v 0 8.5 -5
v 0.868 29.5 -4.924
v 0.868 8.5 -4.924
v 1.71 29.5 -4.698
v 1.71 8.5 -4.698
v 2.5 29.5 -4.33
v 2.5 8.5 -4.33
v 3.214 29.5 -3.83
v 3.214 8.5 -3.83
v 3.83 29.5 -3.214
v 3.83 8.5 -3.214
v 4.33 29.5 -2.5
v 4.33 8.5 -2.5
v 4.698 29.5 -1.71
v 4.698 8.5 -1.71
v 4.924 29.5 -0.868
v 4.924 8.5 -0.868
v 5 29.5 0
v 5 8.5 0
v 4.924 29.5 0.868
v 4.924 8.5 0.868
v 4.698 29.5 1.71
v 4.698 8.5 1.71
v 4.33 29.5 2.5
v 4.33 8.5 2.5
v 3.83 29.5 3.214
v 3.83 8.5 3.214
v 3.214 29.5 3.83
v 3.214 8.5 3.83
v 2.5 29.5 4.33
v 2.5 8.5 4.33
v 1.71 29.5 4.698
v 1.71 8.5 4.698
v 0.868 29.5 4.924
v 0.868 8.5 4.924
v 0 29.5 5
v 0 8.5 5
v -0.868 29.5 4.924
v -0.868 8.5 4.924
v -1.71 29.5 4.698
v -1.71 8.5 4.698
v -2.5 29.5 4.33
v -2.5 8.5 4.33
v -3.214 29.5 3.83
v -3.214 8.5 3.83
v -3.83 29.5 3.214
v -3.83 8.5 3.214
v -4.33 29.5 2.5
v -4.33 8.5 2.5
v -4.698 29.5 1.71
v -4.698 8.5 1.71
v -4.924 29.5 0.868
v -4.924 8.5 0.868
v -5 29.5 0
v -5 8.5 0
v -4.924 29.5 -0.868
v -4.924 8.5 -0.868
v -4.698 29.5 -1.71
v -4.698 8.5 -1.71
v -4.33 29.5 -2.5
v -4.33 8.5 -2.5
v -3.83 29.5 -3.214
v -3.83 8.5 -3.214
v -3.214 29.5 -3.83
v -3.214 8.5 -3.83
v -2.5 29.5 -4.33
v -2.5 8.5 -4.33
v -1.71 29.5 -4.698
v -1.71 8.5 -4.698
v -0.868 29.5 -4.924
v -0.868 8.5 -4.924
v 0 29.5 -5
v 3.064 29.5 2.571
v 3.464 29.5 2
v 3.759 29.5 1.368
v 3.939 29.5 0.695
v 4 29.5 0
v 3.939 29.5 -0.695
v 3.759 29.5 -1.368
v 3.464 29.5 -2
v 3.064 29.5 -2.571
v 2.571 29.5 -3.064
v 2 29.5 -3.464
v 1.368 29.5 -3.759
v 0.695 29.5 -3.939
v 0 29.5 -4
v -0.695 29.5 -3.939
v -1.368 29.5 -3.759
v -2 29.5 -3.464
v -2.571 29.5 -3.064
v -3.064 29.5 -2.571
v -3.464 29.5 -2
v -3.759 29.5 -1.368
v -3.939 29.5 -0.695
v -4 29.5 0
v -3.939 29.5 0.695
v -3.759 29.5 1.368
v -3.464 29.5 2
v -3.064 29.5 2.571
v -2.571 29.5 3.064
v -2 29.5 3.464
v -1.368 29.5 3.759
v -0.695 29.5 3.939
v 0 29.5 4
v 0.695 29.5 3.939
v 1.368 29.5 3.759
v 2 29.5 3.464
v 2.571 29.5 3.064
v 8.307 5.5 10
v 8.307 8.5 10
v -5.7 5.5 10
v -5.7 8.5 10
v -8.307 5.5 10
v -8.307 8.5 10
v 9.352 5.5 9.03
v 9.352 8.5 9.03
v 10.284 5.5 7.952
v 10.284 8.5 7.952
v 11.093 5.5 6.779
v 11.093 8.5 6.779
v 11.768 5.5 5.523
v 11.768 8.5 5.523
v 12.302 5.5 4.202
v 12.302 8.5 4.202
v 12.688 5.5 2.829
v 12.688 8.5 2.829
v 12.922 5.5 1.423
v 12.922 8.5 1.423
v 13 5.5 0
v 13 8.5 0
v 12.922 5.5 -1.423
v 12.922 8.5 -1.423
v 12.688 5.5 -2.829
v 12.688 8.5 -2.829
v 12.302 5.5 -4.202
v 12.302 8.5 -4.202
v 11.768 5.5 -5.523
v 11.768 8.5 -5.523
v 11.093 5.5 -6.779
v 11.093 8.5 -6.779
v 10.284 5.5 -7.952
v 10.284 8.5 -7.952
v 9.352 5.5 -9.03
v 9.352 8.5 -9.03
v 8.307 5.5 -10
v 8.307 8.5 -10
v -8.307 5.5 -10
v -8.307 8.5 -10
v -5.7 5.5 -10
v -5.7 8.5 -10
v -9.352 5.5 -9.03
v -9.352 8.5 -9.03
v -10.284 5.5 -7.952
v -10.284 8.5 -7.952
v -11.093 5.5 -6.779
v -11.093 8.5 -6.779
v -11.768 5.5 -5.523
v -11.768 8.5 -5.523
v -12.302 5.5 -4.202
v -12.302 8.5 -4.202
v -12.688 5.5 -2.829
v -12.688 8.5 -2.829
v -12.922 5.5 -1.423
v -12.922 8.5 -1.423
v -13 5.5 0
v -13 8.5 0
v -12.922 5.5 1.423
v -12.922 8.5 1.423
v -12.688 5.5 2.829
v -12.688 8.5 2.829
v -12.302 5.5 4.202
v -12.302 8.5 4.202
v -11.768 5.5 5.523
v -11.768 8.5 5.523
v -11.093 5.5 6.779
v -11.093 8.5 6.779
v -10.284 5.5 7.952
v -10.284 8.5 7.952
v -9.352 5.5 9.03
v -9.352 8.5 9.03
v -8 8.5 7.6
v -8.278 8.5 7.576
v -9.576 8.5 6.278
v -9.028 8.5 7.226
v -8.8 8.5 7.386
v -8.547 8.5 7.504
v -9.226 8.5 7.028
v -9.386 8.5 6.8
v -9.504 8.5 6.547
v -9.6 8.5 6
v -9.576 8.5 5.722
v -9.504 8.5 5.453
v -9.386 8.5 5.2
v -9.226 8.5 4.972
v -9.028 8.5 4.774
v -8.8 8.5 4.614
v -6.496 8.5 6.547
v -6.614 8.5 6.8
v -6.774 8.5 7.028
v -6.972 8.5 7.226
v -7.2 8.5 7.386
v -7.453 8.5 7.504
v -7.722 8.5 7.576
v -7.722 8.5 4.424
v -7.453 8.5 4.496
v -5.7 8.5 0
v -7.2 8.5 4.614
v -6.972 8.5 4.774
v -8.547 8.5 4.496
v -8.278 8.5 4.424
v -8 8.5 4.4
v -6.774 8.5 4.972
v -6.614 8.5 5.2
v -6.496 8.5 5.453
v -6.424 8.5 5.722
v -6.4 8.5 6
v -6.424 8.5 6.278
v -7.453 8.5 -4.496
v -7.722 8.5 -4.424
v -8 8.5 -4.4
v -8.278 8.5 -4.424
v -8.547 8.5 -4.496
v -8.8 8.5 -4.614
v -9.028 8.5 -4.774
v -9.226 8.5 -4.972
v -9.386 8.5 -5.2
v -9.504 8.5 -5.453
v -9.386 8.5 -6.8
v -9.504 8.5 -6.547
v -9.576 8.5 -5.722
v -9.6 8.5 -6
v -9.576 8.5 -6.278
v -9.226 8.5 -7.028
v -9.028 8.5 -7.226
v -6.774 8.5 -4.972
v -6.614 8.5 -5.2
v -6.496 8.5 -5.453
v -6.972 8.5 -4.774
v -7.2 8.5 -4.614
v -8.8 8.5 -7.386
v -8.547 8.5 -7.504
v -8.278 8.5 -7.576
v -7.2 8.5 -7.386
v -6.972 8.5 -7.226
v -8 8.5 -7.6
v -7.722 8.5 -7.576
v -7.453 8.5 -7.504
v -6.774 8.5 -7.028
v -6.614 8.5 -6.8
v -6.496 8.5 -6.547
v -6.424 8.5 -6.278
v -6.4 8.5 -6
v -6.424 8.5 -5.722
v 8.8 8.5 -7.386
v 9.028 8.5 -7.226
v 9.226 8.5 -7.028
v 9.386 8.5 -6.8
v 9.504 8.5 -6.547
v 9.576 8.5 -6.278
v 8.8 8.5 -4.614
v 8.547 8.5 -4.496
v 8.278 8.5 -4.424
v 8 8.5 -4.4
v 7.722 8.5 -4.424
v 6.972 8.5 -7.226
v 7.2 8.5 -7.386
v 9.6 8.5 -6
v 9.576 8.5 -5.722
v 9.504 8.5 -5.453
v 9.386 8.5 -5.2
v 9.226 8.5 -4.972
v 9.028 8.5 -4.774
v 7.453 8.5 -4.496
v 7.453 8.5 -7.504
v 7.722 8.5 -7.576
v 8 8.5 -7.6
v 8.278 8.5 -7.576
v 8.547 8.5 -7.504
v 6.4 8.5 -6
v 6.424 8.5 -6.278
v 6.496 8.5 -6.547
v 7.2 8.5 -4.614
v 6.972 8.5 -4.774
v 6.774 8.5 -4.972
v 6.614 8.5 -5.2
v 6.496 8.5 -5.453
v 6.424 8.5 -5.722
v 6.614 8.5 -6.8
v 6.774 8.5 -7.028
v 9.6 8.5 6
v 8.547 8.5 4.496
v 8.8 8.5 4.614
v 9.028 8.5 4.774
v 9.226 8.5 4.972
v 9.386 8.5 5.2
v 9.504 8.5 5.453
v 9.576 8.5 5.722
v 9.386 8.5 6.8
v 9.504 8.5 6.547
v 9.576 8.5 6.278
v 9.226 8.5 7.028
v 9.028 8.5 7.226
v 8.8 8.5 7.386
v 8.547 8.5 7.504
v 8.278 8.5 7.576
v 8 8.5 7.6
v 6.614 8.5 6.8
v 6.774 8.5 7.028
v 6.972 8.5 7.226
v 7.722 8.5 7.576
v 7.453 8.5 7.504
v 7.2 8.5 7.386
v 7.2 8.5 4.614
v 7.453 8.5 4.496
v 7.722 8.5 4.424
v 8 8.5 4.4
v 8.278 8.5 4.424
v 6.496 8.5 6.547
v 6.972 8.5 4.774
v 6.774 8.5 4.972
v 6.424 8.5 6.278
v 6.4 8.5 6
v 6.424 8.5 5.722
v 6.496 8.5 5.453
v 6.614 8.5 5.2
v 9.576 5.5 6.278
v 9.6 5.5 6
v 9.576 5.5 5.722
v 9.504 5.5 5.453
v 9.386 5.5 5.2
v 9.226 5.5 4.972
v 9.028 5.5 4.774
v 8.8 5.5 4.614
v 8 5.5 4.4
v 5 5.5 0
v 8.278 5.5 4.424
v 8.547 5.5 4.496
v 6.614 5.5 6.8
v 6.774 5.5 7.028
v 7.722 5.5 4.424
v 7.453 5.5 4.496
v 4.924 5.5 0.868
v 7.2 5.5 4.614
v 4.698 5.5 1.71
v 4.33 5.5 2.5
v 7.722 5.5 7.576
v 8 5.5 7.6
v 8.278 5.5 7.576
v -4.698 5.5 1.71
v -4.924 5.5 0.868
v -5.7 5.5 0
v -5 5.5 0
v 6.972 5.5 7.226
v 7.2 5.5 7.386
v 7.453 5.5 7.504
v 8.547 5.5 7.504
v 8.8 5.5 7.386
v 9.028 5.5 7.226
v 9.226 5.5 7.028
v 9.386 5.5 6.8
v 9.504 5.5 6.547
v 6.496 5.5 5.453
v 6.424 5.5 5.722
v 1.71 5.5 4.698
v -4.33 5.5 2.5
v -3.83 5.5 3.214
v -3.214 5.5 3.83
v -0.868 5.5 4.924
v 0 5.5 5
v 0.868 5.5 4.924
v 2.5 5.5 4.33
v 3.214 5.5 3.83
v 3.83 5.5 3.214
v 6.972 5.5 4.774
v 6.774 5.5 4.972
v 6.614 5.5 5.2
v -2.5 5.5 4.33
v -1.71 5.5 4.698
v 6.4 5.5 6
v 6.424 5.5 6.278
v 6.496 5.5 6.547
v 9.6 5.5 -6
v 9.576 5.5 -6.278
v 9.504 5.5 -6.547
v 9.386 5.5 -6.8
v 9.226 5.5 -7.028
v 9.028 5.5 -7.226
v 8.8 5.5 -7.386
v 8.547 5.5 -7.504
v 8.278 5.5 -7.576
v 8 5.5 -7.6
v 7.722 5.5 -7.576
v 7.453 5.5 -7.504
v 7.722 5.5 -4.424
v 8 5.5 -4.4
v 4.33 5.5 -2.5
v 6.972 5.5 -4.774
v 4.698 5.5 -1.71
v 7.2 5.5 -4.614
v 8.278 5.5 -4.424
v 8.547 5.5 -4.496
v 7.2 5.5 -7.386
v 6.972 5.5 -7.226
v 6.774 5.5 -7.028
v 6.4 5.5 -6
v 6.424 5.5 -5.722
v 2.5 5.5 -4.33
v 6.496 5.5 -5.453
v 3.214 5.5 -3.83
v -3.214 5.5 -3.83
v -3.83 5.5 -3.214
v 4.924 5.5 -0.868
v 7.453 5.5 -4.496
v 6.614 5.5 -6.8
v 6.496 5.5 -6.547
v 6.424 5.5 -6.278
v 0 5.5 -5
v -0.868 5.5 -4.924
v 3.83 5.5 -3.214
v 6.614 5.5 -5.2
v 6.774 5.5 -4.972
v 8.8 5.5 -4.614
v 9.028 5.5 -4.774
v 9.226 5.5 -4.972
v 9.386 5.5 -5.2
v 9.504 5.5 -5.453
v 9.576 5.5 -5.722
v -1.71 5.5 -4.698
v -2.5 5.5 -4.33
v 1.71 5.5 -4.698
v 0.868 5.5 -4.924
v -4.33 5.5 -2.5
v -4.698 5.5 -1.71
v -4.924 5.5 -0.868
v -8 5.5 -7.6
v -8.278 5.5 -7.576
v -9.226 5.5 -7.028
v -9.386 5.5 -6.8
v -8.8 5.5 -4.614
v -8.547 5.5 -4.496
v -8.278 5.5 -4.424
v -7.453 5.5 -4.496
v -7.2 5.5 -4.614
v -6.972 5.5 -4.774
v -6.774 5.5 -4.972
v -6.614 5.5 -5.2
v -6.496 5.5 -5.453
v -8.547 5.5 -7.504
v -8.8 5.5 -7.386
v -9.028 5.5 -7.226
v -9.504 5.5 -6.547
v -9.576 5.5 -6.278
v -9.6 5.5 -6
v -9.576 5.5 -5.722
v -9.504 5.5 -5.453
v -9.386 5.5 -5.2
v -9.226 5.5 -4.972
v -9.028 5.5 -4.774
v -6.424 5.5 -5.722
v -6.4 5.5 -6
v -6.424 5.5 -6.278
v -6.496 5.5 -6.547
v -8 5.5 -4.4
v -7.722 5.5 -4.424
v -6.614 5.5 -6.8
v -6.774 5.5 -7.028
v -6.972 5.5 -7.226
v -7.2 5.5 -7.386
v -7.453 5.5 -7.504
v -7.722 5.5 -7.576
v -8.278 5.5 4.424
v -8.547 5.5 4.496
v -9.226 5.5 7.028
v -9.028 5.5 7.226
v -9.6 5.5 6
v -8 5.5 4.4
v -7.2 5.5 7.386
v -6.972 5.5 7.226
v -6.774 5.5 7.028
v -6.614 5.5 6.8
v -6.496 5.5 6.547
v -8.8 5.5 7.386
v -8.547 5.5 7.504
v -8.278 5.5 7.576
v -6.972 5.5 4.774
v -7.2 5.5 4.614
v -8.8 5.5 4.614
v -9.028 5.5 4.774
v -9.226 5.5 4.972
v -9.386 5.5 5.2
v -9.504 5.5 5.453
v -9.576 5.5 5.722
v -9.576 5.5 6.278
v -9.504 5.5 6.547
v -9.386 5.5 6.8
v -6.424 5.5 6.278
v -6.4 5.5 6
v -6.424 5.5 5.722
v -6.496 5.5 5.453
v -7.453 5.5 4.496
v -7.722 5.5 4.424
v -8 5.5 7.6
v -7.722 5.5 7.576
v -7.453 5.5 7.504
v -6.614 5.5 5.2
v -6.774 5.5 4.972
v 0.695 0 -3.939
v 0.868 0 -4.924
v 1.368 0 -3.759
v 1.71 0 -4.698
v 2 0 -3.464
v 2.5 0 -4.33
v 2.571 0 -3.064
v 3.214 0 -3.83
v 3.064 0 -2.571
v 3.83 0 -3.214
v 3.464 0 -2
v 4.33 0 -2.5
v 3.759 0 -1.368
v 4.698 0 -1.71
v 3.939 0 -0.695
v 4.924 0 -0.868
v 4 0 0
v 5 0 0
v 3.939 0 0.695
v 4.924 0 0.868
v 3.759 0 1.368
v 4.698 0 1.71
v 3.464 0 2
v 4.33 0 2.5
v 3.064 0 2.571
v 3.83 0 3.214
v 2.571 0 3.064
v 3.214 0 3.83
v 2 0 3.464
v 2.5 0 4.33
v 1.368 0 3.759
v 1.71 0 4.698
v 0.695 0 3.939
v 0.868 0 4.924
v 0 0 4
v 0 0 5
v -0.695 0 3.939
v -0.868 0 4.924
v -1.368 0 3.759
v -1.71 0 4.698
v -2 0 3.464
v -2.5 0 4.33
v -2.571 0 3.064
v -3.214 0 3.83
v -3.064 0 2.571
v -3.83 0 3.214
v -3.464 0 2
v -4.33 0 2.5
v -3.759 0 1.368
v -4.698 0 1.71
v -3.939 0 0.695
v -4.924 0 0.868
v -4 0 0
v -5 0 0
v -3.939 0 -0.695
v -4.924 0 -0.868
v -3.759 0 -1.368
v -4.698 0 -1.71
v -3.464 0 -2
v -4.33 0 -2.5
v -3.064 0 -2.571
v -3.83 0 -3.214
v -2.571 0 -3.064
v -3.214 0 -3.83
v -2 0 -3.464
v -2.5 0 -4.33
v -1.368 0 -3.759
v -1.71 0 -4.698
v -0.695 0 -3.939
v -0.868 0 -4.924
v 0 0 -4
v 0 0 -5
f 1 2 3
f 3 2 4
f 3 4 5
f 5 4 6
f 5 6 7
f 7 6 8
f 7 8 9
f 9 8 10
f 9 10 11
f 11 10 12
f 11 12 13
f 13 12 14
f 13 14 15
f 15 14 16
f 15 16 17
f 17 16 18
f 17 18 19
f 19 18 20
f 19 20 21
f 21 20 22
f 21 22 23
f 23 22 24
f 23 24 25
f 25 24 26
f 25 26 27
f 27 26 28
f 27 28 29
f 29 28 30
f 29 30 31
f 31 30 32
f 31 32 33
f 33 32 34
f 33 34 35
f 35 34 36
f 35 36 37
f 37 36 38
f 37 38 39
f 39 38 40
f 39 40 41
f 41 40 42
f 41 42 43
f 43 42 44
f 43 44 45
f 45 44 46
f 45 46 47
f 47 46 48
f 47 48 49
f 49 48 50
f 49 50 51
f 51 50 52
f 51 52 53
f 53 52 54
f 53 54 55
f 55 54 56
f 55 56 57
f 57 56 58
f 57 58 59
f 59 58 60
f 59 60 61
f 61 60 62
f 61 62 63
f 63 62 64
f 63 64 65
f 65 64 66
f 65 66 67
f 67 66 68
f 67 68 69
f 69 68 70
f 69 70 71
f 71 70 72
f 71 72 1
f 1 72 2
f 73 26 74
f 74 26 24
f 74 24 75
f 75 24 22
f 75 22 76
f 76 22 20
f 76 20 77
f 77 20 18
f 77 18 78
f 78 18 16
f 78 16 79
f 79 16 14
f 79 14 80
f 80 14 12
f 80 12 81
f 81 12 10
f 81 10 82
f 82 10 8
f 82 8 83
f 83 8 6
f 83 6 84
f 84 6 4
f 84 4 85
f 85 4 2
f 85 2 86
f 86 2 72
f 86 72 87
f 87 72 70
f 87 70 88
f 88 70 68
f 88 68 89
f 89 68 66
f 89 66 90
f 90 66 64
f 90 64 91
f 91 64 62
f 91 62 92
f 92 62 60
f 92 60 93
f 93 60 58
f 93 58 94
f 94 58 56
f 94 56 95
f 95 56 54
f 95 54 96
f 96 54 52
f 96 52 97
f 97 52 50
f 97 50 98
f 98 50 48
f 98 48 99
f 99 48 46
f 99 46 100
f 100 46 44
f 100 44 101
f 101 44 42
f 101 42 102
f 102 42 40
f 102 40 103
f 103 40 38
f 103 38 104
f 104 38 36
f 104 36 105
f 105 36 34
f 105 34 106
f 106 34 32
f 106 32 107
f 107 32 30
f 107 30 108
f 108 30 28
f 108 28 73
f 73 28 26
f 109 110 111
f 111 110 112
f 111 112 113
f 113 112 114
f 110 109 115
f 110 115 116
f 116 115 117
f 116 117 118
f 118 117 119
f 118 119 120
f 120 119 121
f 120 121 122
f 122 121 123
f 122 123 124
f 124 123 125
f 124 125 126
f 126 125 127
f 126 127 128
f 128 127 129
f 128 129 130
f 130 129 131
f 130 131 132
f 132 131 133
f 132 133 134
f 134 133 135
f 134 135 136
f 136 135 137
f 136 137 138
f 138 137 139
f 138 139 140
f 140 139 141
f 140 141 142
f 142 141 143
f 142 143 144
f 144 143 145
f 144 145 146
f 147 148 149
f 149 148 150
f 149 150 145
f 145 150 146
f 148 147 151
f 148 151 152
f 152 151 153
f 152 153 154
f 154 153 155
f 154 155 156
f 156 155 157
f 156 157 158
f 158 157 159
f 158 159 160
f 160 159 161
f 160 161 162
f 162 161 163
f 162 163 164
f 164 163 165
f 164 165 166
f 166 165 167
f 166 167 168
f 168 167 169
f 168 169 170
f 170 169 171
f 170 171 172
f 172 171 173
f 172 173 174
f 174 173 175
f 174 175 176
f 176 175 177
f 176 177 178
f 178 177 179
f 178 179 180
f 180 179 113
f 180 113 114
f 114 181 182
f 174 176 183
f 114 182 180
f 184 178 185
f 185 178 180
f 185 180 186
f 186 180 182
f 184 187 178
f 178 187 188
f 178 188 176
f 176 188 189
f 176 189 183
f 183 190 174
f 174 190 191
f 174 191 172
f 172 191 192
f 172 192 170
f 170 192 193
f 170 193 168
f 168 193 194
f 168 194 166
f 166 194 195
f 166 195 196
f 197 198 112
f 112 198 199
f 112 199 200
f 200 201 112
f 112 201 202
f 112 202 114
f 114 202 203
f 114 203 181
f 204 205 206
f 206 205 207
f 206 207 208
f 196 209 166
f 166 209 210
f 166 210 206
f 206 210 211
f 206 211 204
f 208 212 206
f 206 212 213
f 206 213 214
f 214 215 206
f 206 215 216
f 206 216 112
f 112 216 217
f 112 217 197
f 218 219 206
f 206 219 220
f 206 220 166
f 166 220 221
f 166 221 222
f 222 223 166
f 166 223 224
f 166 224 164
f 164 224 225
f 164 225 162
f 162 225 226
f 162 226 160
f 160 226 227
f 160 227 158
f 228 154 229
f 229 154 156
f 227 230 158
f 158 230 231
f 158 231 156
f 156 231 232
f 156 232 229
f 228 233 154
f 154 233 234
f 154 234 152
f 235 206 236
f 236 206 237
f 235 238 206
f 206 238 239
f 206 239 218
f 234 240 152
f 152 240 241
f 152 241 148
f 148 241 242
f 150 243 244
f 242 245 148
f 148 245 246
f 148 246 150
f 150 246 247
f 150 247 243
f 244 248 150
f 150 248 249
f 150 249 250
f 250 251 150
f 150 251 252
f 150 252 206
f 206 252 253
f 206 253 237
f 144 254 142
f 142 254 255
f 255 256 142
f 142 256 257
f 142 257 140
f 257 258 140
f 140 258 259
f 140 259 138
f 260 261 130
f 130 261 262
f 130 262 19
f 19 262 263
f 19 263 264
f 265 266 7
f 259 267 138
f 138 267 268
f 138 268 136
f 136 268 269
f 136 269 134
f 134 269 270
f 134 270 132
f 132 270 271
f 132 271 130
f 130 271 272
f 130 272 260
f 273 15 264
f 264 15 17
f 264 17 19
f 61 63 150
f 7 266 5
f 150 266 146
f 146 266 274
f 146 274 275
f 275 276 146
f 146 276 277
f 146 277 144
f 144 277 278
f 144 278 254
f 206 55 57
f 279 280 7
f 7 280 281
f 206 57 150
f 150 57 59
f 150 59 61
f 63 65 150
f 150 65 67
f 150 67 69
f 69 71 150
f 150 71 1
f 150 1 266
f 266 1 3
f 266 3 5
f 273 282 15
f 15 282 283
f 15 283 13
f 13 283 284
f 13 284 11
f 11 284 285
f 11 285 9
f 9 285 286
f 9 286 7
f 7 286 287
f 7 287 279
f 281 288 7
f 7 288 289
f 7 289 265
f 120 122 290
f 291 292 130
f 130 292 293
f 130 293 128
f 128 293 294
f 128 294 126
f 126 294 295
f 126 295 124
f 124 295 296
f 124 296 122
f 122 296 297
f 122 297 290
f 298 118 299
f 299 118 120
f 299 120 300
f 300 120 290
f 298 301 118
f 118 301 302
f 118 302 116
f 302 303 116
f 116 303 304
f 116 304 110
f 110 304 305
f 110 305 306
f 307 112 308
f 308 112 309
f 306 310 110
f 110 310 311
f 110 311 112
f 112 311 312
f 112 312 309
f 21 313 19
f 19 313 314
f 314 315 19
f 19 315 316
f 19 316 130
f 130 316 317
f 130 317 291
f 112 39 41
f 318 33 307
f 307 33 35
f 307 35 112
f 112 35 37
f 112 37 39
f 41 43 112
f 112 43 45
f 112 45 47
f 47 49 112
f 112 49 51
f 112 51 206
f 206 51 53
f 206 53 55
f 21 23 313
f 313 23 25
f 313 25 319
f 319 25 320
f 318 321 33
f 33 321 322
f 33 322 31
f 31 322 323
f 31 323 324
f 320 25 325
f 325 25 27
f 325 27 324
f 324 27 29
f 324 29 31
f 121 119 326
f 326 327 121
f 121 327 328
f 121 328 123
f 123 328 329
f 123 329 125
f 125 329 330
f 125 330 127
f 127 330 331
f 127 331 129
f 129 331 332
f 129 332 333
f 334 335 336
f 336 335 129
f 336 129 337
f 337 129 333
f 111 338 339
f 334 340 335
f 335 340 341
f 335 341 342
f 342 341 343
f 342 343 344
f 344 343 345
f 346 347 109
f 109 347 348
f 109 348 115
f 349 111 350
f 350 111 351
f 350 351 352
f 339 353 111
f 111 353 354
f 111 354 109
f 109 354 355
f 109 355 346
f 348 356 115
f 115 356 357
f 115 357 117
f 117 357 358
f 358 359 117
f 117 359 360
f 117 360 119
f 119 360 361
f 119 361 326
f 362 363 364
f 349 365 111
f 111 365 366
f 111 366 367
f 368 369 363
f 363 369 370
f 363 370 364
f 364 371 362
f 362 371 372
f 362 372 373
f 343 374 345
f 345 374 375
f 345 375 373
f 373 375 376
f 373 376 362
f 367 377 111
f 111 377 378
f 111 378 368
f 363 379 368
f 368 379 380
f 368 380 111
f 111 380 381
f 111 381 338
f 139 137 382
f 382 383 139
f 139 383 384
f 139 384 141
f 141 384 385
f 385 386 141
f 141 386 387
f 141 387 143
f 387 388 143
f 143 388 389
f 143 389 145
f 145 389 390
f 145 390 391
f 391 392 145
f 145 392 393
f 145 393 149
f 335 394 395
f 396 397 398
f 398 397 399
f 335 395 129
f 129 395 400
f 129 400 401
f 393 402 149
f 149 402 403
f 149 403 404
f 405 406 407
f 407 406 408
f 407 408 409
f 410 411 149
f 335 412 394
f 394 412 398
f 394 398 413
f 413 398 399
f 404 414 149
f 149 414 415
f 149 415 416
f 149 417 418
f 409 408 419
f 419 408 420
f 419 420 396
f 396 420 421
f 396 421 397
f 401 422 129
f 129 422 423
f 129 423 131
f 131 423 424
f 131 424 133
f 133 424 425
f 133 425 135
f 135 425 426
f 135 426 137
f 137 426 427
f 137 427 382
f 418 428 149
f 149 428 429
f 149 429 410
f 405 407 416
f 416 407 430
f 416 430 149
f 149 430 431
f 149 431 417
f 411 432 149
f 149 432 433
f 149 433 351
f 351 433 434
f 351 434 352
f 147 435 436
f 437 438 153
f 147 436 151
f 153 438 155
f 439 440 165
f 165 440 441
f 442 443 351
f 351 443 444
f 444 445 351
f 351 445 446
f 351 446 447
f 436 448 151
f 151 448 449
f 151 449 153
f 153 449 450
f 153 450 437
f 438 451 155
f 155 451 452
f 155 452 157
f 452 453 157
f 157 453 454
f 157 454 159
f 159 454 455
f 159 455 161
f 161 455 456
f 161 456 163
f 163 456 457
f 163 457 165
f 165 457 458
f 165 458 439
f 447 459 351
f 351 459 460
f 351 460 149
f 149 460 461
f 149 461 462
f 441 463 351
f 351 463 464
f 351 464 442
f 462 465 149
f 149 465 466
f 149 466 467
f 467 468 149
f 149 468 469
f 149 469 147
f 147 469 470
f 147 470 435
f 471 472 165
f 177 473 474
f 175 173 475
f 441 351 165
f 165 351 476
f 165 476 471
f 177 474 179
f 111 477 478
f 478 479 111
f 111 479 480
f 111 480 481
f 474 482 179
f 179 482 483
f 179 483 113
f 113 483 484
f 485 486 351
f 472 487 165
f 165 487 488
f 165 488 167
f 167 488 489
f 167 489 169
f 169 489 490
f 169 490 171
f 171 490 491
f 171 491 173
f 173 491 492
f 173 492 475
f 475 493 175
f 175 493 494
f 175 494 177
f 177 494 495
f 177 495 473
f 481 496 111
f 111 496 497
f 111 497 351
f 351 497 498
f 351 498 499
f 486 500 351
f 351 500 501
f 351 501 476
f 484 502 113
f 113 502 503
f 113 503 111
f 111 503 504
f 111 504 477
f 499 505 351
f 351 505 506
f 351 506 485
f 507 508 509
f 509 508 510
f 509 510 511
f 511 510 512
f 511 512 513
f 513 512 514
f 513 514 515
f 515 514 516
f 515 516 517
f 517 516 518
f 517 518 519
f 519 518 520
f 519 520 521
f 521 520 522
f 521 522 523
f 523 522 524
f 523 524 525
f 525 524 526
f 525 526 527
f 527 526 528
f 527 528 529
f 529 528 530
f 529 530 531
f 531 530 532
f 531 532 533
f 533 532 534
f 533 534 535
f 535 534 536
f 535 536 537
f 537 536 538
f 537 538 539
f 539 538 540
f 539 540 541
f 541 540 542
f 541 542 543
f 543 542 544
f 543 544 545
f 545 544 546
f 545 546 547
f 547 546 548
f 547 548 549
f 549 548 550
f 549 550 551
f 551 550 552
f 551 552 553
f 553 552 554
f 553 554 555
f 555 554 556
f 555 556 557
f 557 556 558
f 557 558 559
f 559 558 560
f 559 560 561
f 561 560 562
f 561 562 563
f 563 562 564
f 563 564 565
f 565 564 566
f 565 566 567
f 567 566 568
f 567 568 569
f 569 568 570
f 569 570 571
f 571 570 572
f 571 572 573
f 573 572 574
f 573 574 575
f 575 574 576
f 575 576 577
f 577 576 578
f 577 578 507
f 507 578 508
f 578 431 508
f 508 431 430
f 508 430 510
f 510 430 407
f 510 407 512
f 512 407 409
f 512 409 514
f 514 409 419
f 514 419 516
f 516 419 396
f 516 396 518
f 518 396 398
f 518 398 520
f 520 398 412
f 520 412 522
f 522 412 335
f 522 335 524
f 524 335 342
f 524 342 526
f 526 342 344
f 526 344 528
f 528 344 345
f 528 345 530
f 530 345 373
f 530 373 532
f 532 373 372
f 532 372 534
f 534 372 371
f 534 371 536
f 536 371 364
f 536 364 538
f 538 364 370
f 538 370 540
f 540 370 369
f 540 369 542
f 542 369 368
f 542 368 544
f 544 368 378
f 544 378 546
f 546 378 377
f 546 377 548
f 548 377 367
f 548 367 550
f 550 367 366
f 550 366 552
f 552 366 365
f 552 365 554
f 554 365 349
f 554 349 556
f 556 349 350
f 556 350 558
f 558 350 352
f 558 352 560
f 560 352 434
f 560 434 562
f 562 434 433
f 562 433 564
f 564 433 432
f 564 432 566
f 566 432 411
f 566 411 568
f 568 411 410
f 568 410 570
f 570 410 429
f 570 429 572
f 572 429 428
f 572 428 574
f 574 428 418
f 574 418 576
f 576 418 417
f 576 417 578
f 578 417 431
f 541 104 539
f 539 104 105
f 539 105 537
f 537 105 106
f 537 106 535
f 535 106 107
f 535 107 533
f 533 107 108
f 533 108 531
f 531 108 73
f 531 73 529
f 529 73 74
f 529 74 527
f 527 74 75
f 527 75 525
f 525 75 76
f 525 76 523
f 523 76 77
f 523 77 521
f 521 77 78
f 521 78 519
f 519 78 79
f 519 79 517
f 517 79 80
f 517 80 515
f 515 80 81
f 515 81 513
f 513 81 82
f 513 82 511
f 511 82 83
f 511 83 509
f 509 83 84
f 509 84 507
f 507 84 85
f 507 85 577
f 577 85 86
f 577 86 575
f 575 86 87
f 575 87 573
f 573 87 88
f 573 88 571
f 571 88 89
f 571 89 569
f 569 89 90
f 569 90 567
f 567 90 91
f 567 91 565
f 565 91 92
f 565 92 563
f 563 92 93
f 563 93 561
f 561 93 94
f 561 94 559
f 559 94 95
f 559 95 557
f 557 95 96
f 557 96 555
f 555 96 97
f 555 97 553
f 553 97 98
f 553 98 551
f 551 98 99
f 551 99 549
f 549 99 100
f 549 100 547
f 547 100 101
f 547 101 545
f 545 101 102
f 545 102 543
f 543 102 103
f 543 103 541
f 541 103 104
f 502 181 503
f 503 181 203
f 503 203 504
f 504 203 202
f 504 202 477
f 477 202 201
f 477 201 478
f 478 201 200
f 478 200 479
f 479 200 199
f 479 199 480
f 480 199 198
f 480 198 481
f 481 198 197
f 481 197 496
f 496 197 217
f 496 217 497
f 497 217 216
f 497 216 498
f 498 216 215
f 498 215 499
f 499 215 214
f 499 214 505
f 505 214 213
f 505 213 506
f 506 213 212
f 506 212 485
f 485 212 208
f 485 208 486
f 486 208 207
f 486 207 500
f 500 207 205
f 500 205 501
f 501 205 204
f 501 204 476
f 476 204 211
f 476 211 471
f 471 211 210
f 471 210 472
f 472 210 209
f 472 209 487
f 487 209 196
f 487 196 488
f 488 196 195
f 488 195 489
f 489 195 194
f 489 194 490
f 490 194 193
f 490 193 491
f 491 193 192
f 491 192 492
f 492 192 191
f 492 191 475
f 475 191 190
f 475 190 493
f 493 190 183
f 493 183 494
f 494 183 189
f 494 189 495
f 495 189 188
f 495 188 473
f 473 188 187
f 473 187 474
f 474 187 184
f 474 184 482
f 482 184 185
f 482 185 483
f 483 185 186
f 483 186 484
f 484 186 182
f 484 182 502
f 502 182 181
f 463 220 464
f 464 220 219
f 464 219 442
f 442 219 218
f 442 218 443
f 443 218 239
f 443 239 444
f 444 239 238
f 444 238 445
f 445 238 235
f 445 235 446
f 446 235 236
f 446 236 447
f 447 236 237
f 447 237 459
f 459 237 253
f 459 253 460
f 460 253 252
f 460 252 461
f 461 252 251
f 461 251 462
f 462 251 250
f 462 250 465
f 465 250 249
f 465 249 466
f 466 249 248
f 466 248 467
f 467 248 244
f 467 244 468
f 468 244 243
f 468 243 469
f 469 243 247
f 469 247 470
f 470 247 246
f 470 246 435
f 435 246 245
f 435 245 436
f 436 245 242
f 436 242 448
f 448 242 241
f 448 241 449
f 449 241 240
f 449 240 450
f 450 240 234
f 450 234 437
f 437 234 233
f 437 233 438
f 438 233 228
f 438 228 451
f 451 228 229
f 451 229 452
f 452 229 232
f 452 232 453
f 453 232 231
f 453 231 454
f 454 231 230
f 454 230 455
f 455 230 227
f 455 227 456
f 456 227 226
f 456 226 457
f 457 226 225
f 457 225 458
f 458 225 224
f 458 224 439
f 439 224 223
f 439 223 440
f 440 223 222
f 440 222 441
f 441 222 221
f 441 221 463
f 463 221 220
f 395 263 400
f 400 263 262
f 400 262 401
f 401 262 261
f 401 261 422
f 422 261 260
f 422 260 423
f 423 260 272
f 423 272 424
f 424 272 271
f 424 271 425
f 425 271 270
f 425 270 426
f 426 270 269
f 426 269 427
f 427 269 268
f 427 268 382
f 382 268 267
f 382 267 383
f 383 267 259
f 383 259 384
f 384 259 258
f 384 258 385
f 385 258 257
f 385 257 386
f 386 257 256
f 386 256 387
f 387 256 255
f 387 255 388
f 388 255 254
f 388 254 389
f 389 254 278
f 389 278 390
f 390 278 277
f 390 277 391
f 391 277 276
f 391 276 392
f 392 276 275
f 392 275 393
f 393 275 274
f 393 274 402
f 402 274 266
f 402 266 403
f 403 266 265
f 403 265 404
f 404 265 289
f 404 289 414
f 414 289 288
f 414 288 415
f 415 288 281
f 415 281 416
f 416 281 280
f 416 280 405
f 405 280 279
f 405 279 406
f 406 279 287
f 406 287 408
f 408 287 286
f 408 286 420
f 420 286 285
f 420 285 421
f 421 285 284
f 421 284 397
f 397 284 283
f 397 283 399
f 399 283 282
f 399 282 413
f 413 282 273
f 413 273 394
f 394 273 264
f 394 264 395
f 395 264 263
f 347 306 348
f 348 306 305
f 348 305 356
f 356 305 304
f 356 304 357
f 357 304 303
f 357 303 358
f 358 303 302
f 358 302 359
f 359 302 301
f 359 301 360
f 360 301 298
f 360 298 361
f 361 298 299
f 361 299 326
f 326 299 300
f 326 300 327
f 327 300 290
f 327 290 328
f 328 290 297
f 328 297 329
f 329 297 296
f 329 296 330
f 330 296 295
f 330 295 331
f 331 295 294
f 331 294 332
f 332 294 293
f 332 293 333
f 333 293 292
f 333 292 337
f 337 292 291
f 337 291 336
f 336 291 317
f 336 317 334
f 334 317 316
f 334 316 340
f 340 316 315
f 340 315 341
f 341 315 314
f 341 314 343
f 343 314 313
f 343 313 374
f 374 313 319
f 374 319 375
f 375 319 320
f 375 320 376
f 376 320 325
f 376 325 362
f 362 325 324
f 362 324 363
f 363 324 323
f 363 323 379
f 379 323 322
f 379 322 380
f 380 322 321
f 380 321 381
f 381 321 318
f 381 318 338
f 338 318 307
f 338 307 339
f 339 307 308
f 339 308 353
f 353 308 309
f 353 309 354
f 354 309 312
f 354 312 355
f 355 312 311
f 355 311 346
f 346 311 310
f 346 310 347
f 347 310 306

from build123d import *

# Parameters (mm, degrees)
SKETCH1_R                  = 5
BOSS_EXTRUDE1_DEPTH        = 29.5
BOSS_EXTRUDE2_DEPTH        = 3
SKETCH3_R                  = 4
CUT_EXTRUDE1_DEPTH         = 34.752777663
F_3_2_3_2_DIAMETER_HOLE1_D = 3.2


with BuildPart() as part:
    # Sketch1 → Boss-Extrude1 (new body)
    with BuildSketch(Plane(origin=(0, 0, 0), x_dir=(1, 0, 0), z_dir=(0, 1, 0))):
        with Locations(Location((0, 0, 0), (0, 0, 270))):
            Circle(SKETCH1_R)
    extrude(amount=BOSS_EXTRUDE1_DEPTH)

    # Sketch2 → Boss-Extrude2 (add)
    with BuildSketch(Plane(origin=(0, 5.5, 0), x_dir=(1, 0, 0), z_dir=(0, 1, 0))):
        with BuildLine():
            Line((8.306623863, 10), (-8.306623863, 10))
            ThreePointArc((-8.306623863, 10), (-11.768307238, 5.523309222), (-13, -2.7e-08))
            ThreePointArc((-13, -2.7e-08), (-11.768307226, -5.523309246), (-8.306623863, -10))
            Line((-8.306623863, -10), (8.306623863, -10))
            ThreePointArc((8.306623863, -10), (11.768307232, -5.523309234), (13, 0))
            ThreePointArc((13, 0), (11.768307232, 5.523309234), (8.306623863, 10))
        make_face()
    extrude(amount=BOSS_EXTRUDE2_DEPTH)

    # Sketch3 → Cut-Extrude1 (cut, through all)
    with BuildSketch(Plane(origin=(0, 29.5, 0), x_dir=(1, 0, 0), z_dir=(0, 1, 0))):
        with Locations(Location((0, 0, 0), (0, 0, 270))):
            Circle(SKETCH3_R)
    extrude(amount=-CUT_EXTRUDE1_DEPTH, mode=Mode.SUBTRACT)

    # Ø3.2 (3.2) Diameter Hole1 (through all)
    with Locations(Plane(origin=(8, 8.5, 6), x_dir=(0, 0, 1), z_dir=(0, 1, 0))):
        with Locations((0, 0), (-12, 0), (-12, -16), (0, -16)):
            Hole(F_3_2_3_2_DIAMETER_HOLE1_D / 2)


solid = part.part
